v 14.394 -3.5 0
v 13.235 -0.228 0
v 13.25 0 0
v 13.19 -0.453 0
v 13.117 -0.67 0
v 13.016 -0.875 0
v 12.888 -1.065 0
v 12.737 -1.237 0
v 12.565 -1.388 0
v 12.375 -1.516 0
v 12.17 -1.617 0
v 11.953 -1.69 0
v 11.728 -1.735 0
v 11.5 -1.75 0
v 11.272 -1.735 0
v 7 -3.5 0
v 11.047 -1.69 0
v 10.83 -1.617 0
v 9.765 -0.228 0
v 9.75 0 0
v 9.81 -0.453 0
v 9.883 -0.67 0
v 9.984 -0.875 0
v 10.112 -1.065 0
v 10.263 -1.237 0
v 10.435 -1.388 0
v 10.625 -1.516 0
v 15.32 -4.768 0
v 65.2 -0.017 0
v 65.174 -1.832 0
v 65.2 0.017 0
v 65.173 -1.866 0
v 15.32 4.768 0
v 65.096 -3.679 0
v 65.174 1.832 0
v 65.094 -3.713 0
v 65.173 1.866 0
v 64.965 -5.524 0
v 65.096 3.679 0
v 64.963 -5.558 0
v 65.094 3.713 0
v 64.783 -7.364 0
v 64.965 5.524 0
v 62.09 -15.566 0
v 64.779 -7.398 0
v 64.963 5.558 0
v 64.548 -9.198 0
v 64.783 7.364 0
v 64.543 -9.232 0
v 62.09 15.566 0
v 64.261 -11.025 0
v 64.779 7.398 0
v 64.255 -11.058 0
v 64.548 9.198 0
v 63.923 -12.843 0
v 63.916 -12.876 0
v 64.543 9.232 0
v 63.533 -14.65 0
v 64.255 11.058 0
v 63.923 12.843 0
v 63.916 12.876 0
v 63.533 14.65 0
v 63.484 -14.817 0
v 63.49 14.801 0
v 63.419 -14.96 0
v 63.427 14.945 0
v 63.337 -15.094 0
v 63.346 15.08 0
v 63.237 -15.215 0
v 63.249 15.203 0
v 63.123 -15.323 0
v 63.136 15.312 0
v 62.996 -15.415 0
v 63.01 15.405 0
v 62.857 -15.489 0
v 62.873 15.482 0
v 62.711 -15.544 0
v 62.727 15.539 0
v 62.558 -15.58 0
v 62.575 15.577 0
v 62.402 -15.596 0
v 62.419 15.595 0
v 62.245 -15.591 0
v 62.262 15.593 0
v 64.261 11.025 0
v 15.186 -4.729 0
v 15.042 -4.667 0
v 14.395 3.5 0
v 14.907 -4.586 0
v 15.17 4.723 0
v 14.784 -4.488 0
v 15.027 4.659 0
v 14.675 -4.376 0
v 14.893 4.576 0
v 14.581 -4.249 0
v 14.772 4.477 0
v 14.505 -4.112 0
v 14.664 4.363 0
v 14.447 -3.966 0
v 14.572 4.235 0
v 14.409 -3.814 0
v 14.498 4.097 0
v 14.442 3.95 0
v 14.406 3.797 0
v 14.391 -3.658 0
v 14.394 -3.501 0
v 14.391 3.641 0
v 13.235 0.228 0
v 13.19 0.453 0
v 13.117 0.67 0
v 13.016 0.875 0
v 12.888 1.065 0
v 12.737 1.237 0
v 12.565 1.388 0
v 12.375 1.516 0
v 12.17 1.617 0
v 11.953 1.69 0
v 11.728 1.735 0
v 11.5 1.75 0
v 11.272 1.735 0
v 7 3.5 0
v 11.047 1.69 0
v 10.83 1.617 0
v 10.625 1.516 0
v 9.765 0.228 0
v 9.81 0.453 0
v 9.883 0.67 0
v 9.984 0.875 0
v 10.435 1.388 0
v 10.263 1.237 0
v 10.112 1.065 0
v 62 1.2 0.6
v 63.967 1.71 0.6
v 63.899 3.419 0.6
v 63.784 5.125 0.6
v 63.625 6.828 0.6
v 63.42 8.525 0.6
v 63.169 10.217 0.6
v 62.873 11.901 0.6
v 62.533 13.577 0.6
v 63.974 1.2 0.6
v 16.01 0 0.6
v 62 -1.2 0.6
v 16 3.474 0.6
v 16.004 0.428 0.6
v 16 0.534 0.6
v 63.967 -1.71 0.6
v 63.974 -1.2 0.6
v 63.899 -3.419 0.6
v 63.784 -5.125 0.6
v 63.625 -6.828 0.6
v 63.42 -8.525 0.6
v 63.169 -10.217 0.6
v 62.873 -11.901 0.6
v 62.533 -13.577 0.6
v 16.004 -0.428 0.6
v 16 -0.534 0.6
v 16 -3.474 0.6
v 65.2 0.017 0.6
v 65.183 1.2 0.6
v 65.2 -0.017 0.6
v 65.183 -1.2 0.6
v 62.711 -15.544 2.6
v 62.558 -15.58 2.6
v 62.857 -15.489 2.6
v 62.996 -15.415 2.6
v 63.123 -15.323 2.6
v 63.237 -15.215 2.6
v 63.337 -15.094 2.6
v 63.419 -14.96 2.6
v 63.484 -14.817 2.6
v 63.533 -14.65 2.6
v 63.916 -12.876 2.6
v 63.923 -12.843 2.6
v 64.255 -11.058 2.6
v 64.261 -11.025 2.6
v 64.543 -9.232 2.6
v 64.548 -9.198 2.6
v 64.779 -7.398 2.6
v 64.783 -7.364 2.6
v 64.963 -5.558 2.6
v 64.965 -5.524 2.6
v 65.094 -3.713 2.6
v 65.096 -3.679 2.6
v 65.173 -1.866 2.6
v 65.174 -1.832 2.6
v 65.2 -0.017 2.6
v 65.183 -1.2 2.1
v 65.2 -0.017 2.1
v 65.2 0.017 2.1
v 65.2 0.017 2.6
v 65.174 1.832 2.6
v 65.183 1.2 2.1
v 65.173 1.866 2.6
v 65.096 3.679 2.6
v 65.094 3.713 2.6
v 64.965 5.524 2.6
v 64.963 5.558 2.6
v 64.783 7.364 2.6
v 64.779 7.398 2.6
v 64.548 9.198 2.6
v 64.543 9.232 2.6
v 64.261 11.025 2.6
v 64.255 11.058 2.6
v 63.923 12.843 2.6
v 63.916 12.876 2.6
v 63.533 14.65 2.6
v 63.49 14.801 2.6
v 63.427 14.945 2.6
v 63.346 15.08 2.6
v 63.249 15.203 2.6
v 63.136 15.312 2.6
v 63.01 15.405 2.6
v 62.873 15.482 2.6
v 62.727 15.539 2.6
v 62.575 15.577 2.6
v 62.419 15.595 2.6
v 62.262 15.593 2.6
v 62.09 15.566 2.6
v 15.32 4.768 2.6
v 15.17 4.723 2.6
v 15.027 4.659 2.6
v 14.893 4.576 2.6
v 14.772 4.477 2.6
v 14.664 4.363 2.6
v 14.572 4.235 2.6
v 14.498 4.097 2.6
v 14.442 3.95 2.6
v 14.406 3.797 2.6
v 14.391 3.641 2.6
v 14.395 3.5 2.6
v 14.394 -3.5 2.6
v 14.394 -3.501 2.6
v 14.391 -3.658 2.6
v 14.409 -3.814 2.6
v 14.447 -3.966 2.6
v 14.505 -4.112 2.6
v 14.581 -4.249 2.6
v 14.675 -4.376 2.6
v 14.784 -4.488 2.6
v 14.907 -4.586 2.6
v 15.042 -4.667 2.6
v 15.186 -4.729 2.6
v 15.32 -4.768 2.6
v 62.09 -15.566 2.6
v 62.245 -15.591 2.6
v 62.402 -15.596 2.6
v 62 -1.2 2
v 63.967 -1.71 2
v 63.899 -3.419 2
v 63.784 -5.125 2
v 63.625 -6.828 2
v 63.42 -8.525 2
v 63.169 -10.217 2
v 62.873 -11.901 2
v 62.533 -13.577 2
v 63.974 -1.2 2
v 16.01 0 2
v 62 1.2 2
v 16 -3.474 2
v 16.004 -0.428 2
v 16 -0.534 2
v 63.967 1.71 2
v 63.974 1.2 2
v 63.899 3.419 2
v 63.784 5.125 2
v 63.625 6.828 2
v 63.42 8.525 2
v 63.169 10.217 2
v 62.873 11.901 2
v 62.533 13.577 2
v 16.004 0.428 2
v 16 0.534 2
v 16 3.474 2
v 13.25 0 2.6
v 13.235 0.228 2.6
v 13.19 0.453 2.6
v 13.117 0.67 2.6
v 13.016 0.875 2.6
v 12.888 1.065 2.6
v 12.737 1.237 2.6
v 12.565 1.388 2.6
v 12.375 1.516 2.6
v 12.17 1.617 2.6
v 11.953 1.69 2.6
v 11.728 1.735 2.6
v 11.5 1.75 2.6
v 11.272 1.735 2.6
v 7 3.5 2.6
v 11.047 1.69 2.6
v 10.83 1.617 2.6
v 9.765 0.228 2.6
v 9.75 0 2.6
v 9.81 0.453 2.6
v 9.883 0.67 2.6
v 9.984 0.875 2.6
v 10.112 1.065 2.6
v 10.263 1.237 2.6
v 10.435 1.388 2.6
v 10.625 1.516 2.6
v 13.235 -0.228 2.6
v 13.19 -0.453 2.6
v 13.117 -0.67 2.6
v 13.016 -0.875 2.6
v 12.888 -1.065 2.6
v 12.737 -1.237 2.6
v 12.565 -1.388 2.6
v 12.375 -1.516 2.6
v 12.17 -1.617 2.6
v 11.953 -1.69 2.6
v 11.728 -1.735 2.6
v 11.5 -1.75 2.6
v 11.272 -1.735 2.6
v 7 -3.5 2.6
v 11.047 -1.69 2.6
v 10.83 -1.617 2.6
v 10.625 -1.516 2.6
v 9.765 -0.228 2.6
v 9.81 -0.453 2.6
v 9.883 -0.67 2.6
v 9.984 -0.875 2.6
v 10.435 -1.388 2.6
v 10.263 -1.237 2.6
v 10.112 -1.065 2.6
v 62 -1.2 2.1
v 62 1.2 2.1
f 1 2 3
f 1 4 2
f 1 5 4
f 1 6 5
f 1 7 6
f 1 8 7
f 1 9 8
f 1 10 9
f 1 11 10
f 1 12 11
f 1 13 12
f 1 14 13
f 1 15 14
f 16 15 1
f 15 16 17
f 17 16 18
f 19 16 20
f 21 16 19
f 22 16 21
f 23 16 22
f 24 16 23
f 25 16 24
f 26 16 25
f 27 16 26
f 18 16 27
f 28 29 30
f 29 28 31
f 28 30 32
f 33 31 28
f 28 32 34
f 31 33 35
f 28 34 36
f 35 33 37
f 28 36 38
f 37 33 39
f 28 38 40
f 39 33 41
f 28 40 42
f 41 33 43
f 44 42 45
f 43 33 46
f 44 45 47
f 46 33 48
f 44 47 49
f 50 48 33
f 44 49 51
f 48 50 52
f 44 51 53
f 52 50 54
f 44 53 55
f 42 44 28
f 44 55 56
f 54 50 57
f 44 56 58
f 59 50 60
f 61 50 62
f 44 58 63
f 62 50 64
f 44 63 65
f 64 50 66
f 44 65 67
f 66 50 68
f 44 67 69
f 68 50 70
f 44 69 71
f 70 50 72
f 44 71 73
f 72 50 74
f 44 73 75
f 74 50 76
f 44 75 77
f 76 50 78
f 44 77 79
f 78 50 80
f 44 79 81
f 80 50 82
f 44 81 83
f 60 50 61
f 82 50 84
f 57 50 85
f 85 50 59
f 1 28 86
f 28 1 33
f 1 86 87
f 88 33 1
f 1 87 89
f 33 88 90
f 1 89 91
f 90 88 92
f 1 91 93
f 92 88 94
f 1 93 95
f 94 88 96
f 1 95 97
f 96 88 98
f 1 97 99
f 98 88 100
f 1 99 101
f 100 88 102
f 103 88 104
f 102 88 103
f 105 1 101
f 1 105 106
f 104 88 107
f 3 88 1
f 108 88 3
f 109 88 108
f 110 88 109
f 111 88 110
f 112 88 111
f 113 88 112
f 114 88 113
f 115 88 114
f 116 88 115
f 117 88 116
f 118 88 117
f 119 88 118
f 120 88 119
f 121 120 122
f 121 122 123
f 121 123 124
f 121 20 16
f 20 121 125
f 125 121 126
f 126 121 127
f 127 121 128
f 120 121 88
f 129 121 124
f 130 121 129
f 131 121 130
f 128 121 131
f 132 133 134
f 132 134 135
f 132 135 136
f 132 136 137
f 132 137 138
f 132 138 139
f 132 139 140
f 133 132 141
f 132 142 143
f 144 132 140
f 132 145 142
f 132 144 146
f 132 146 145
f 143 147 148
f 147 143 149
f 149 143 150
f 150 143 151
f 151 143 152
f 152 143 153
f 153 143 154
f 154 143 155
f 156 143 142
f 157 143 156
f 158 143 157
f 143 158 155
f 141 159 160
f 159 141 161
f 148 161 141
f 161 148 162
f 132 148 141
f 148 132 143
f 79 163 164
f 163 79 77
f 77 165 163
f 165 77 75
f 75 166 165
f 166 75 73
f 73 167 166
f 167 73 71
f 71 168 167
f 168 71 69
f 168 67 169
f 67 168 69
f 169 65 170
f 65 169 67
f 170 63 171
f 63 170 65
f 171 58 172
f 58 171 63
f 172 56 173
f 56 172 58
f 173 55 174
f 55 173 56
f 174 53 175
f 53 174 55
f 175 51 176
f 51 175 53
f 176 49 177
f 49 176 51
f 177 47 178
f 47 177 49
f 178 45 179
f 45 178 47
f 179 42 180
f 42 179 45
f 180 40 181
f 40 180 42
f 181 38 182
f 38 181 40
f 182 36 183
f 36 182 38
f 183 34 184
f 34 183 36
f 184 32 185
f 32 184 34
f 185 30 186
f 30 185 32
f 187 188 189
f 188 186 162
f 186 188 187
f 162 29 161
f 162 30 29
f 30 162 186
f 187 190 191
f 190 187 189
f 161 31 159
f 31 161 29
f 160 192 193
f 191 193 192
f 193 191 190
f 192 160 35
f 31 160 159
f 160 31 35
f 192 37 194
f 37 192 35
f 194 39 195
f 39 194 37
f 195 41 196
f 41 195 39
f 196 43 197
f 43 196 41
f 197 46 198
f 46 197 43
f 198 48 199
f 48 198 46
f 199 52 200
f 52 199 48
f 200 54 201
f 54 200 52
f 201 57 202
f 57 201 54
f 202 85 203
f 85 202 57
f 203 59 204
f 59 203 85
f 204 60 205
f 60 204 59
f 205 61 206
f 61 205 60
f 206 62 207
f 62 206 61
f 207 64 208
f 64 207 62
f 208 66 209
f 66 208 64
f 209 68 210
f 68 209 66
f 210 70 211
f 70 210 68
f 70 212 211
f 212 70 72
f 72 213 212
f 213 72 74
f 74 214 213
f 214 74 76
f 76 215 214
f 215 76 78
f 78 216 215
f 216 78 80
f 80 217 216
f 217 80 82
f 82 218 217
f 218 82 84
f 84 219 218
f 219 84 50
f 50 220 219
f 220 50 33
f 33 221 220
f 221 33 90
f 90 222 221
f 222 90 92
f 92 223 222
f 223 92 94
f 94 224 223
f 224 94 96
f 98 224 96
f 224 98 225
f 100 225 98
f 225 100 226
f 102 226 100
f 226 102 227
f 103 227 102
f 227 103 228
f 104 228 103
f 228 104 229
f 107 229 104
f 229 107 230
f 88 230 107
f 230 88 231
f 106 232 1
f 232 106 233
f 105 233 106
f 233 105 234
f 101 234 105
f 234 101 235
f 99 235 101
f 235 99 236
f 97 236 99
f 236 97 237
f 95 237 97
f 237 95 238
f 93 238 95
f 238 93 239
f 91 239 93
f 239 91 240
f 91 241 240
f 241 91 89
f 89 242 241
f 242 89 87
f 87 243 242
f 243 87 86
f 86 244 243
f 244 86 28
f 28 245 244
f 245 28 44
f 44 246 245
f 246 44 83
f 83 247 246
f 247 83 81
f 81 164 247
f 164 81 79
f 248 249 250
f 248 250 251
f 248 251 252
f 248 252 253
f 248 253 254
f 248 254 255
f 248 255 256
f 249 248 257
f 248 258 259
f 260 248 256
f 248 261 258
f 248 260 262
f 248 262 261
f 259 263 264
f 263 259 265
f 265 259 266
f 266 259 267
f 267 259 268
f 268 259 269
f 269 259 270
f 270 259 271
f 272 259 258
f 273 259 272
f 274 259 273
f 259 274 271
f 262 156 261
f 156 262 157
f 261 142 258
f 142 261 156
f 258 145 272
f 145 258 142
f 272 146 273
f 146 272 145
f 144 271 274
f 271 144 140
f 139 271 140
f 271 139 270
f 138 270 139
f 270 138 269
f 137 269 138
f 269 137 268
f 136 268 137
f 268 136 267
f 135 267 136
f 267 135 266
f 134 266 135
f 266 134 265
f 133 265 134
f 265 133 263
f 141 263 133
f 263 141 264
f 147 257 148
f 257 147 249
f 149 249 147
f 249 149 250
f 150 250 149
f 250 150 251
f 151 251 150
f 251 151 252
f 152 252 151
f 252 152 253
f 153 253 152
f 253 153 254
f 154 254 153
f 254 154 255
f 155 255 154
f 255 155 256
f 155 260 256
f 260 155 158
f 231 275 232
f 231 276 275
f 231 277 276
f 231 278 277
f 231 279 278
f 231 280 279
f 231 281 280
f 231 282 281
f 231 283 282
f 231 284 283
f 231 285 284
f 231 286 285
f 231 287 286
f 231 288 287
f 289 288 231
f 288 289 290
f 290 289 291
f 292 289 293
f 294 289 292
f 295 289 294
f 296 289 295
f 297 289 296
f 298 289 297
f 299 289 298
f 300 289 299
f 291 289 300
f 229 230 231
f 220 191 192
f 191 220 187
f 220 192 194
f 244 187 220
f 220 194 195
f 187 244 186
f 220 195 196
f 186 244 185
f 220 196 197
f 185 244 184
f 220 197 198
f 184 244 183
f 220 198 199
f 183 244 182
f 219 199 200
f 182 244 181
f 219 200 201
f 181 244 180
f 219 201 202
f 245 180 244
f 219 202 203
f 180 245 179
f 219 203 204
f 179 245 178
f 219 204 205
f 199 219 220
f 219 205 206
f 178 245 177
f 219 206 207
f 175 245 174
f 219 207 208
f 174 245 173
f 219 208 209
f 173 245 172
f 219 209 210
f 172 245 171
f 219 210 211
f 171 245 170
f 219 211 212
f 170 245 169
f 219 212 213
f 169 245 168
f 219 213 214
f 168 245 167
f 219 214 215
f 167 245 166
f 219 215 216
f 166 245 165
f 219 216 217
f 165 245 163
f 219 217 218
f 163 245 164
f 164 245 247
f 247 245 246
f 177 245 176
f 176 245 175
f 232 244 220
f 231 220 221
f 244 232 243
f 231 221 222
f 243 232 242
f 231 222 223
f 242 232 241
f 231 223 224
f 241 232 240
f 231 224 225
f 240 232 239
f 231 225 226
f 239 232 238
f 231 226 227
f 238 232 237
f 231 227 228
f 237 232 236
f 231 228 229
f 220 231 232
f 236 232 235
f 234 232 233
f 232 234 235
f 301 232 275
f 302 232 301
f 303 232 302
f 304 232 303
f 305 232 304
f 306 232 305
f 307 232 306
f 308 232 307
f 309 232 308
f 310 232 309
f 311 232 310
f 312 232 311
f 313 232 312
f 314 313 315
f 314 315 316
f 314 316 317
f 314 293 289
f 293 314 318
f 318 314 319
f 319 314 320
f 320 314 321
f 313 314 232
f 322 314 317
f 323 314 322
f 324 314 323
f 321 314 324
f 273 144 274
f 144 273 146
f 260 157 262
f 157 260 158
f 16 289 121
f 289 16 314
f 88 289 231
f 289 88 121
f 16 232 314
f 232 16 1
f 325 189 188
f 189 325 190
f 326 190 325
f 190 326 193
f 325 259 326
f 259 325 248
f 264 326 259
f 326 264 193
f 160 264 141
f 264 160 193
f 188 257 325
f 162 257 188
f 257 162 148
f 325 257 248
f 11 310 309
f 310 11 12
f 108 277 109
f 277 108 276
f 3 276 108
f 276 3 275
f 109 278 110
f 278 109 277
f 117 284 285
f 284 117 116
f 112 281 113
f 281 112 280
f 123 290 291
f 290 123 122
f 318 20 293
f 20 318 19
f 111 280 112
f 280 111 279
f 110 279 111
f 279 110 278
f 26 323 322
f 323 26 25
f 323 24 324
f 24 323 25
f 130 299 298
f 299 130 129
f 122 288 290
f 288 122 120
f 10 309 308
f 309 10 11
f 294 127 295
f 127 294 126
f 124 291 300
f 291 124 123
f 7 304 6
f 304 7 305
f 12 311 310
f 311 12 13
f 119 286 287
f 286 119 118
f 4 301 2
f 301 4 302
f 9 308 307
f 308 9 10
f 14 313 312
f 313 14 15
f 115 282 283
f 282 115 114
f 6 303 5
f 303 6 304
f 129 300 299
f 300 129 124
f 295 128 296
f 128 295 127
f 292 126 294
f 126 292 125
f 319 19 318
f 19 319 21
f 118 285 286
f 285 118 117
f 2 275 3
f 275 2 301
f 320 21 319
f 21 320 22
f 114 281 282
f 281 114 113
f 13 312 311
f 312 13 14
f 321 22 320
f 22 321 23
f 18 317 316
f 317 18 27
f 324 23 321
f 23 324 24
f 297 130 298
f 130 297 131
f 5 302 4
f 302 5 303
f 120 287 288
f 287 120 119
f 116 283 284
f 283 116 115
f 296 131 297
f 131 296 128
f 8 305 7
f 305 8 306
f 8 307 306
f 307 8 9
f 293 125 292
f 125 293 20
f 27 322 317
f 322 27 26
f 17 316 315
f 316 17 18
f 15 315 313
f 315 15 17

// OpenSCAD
// file: parameters.scad
// =============================================================================
// Gen-AK Dual-rotor copper-centroid ultra AFPM — WOUND-AWARE (HARD GATE)
// PRIMARY challenger vs Gen-AH. Magnets @ R=40 + 190 t + former_web 1.40 → m2m 4.86.
// =============================================================================

// --- Wire / wind budget (26 AWG, ~1 lb spool ≈ 390 m bare-equiv) --------------
wire_awg            = 26;
wire_od             = 0.45;     // insulated OD mm
turns               = 190;      // +10 vs Gen-AH 180
fill                = 0.70;
layers_per_face     = 2;        // axial layers proud of EACH flange
wind_build_axial    = layers_per_face * wire_od * fill;   // 0.63 mm
wind_build_radial   = 3 * wire_od * fill;                 // 0.945 mm

// --- Pancake former (bare STL) -----------------------------------------------
coil_id_r           = 16.0;     // copper-centroid window centered ~R=40
coil_od_r           = 64.0;
span_deg            = 26.0;     // 12 stations × 30° pitch
former_web          = 1.40;     // thinner vs AH 1.50 (print-safe ≥0.8)
flange_t            = 0.60;
wall                = 1.2;
slot_w              = 2.4;
mount_hole          = 3.5;
tab_len             = 7.0;

former_bare_h       = former_web + 2 * flange_t;            // 2.60 mm
coil_envelope_h     = former_bare_h + 2 * wind_build_axial; // 3.86 mm

// --- Running clearance (magnet face → WOUND face) EACH side ------------------
run_clear           = 0.50;     // PASS floor ≥ 0.5
gap_spacer_h        = run_clear + wind_build_axial;         // 1.13 mm
m2m                 = coil_envelope_h + 2 * run_clear;      // 4.86 mm (beats Gen-AH 4.96)

// --- Mid stator (12 pancakes 3φ; winds proud both faces) ---------------------
coil_stations       = 12;
bay_r_in            = coil_id_r - 2.0 - wind_build_radial;
bay_r_out           = coil_od_r + 2.0 + wind_build_radial;
bay_span            = span_deg + 4.0;
bay_offset          = 2.0;
stator_thick        = former_bare_h;                        // winds proud ±Z
stator_od           = 160.0;
shaft_clear_stator  = 34.0;
coil_mount_r        = 26.0;

// --- Rotors (×2) — 8×Ø20 @ R=40 (copper centroid) + 24×Ø5 Halbach ------------
large_pocket_d      = 20.3;
small_pocket_d      = 5.3;
pocket_h            = 5.2;
large_n             = 8;
R_large             = 40.0;     // covers ~30–50 over copper centroid ~40
R_small_inner       = 25.0;
R_small_mid         = 40.0;
R_small_outer       = 57.0;
carrier_od          = 156.0;
carrier_thick       = 7.5;
hub_h               = 10.0;
hub_od              = 30.0;
rotor_b_offset_deg  = 22.5;

// --- Modular MAX interface (Gen-E family) ------------------------------------
shaft_bore          = 8.35;
bearing_d           = 21.85;
bearing_h           = 7.2;
m3_clear            = 3.5;
bolt_r_inner        = 36.0;
bolt_n_inner        = 6;
flange_bolt_r       = 72.0;
flange_bolt_n       = 6;
brace_r             = 68.0;
brace_d             = 4.3;
brace_n             = 4;

spacer_pad_od       = 14.0;
spacer_pad_id       = m3_clear;
endbell_od          = 160.0;
endbell_thick       = 8.0;
endbell_shaft_clear = 10.0;

$fn = 64;
// main file
// Gen-AK pancake former — wind BEFORE assembly
include <parameters.scad>;
$fn = 48;

module sector_2d(r_in, r_out, ang) {
    polygon([
        for (a = [-ang/2 : ang/16 : ang/2]) [r_in*cos(a), r_in*sin(a)],
        for (a = [ang/2 : -ang/16 : -ang/2]) [r_out*cos(a), r_out*sin(a)]
    ]);
}
module flange() {
    linear_extrude(flange_t) offset(r=wall) sector_2d(coil_id_r, coil_od_r, span_deg);
}
difference() {
    union() {
        flange();
        translate([0, 0, flange_t])
            linear_extrude(former_web)
                difference() {
                    offset(r=wall) sector_2d(coil_id_r, coil_od_r, span_deg);
                    sector_2d(coil_id_r + 0.01, coil_od_r - 0.01, span_deg - 1.5);
                }
        translate([0, 0, flange_t + former_web]) flange();
        translate([coil_id_r - tab_len - 2, -3.5, 0])
            cube([tab_len + 2, 7, former_bare_h]);
    }
    translate([coil_od_r - 2, -slot_w/2, flange_t])
        cube([wall + 4, slot_w, former_web + 0.1]);
    translate([coil_id_r - tab_len/2 - 1, 0, -0.1])
        cylinder(d=mount_hole, h=former_bare_h + 1);
}
